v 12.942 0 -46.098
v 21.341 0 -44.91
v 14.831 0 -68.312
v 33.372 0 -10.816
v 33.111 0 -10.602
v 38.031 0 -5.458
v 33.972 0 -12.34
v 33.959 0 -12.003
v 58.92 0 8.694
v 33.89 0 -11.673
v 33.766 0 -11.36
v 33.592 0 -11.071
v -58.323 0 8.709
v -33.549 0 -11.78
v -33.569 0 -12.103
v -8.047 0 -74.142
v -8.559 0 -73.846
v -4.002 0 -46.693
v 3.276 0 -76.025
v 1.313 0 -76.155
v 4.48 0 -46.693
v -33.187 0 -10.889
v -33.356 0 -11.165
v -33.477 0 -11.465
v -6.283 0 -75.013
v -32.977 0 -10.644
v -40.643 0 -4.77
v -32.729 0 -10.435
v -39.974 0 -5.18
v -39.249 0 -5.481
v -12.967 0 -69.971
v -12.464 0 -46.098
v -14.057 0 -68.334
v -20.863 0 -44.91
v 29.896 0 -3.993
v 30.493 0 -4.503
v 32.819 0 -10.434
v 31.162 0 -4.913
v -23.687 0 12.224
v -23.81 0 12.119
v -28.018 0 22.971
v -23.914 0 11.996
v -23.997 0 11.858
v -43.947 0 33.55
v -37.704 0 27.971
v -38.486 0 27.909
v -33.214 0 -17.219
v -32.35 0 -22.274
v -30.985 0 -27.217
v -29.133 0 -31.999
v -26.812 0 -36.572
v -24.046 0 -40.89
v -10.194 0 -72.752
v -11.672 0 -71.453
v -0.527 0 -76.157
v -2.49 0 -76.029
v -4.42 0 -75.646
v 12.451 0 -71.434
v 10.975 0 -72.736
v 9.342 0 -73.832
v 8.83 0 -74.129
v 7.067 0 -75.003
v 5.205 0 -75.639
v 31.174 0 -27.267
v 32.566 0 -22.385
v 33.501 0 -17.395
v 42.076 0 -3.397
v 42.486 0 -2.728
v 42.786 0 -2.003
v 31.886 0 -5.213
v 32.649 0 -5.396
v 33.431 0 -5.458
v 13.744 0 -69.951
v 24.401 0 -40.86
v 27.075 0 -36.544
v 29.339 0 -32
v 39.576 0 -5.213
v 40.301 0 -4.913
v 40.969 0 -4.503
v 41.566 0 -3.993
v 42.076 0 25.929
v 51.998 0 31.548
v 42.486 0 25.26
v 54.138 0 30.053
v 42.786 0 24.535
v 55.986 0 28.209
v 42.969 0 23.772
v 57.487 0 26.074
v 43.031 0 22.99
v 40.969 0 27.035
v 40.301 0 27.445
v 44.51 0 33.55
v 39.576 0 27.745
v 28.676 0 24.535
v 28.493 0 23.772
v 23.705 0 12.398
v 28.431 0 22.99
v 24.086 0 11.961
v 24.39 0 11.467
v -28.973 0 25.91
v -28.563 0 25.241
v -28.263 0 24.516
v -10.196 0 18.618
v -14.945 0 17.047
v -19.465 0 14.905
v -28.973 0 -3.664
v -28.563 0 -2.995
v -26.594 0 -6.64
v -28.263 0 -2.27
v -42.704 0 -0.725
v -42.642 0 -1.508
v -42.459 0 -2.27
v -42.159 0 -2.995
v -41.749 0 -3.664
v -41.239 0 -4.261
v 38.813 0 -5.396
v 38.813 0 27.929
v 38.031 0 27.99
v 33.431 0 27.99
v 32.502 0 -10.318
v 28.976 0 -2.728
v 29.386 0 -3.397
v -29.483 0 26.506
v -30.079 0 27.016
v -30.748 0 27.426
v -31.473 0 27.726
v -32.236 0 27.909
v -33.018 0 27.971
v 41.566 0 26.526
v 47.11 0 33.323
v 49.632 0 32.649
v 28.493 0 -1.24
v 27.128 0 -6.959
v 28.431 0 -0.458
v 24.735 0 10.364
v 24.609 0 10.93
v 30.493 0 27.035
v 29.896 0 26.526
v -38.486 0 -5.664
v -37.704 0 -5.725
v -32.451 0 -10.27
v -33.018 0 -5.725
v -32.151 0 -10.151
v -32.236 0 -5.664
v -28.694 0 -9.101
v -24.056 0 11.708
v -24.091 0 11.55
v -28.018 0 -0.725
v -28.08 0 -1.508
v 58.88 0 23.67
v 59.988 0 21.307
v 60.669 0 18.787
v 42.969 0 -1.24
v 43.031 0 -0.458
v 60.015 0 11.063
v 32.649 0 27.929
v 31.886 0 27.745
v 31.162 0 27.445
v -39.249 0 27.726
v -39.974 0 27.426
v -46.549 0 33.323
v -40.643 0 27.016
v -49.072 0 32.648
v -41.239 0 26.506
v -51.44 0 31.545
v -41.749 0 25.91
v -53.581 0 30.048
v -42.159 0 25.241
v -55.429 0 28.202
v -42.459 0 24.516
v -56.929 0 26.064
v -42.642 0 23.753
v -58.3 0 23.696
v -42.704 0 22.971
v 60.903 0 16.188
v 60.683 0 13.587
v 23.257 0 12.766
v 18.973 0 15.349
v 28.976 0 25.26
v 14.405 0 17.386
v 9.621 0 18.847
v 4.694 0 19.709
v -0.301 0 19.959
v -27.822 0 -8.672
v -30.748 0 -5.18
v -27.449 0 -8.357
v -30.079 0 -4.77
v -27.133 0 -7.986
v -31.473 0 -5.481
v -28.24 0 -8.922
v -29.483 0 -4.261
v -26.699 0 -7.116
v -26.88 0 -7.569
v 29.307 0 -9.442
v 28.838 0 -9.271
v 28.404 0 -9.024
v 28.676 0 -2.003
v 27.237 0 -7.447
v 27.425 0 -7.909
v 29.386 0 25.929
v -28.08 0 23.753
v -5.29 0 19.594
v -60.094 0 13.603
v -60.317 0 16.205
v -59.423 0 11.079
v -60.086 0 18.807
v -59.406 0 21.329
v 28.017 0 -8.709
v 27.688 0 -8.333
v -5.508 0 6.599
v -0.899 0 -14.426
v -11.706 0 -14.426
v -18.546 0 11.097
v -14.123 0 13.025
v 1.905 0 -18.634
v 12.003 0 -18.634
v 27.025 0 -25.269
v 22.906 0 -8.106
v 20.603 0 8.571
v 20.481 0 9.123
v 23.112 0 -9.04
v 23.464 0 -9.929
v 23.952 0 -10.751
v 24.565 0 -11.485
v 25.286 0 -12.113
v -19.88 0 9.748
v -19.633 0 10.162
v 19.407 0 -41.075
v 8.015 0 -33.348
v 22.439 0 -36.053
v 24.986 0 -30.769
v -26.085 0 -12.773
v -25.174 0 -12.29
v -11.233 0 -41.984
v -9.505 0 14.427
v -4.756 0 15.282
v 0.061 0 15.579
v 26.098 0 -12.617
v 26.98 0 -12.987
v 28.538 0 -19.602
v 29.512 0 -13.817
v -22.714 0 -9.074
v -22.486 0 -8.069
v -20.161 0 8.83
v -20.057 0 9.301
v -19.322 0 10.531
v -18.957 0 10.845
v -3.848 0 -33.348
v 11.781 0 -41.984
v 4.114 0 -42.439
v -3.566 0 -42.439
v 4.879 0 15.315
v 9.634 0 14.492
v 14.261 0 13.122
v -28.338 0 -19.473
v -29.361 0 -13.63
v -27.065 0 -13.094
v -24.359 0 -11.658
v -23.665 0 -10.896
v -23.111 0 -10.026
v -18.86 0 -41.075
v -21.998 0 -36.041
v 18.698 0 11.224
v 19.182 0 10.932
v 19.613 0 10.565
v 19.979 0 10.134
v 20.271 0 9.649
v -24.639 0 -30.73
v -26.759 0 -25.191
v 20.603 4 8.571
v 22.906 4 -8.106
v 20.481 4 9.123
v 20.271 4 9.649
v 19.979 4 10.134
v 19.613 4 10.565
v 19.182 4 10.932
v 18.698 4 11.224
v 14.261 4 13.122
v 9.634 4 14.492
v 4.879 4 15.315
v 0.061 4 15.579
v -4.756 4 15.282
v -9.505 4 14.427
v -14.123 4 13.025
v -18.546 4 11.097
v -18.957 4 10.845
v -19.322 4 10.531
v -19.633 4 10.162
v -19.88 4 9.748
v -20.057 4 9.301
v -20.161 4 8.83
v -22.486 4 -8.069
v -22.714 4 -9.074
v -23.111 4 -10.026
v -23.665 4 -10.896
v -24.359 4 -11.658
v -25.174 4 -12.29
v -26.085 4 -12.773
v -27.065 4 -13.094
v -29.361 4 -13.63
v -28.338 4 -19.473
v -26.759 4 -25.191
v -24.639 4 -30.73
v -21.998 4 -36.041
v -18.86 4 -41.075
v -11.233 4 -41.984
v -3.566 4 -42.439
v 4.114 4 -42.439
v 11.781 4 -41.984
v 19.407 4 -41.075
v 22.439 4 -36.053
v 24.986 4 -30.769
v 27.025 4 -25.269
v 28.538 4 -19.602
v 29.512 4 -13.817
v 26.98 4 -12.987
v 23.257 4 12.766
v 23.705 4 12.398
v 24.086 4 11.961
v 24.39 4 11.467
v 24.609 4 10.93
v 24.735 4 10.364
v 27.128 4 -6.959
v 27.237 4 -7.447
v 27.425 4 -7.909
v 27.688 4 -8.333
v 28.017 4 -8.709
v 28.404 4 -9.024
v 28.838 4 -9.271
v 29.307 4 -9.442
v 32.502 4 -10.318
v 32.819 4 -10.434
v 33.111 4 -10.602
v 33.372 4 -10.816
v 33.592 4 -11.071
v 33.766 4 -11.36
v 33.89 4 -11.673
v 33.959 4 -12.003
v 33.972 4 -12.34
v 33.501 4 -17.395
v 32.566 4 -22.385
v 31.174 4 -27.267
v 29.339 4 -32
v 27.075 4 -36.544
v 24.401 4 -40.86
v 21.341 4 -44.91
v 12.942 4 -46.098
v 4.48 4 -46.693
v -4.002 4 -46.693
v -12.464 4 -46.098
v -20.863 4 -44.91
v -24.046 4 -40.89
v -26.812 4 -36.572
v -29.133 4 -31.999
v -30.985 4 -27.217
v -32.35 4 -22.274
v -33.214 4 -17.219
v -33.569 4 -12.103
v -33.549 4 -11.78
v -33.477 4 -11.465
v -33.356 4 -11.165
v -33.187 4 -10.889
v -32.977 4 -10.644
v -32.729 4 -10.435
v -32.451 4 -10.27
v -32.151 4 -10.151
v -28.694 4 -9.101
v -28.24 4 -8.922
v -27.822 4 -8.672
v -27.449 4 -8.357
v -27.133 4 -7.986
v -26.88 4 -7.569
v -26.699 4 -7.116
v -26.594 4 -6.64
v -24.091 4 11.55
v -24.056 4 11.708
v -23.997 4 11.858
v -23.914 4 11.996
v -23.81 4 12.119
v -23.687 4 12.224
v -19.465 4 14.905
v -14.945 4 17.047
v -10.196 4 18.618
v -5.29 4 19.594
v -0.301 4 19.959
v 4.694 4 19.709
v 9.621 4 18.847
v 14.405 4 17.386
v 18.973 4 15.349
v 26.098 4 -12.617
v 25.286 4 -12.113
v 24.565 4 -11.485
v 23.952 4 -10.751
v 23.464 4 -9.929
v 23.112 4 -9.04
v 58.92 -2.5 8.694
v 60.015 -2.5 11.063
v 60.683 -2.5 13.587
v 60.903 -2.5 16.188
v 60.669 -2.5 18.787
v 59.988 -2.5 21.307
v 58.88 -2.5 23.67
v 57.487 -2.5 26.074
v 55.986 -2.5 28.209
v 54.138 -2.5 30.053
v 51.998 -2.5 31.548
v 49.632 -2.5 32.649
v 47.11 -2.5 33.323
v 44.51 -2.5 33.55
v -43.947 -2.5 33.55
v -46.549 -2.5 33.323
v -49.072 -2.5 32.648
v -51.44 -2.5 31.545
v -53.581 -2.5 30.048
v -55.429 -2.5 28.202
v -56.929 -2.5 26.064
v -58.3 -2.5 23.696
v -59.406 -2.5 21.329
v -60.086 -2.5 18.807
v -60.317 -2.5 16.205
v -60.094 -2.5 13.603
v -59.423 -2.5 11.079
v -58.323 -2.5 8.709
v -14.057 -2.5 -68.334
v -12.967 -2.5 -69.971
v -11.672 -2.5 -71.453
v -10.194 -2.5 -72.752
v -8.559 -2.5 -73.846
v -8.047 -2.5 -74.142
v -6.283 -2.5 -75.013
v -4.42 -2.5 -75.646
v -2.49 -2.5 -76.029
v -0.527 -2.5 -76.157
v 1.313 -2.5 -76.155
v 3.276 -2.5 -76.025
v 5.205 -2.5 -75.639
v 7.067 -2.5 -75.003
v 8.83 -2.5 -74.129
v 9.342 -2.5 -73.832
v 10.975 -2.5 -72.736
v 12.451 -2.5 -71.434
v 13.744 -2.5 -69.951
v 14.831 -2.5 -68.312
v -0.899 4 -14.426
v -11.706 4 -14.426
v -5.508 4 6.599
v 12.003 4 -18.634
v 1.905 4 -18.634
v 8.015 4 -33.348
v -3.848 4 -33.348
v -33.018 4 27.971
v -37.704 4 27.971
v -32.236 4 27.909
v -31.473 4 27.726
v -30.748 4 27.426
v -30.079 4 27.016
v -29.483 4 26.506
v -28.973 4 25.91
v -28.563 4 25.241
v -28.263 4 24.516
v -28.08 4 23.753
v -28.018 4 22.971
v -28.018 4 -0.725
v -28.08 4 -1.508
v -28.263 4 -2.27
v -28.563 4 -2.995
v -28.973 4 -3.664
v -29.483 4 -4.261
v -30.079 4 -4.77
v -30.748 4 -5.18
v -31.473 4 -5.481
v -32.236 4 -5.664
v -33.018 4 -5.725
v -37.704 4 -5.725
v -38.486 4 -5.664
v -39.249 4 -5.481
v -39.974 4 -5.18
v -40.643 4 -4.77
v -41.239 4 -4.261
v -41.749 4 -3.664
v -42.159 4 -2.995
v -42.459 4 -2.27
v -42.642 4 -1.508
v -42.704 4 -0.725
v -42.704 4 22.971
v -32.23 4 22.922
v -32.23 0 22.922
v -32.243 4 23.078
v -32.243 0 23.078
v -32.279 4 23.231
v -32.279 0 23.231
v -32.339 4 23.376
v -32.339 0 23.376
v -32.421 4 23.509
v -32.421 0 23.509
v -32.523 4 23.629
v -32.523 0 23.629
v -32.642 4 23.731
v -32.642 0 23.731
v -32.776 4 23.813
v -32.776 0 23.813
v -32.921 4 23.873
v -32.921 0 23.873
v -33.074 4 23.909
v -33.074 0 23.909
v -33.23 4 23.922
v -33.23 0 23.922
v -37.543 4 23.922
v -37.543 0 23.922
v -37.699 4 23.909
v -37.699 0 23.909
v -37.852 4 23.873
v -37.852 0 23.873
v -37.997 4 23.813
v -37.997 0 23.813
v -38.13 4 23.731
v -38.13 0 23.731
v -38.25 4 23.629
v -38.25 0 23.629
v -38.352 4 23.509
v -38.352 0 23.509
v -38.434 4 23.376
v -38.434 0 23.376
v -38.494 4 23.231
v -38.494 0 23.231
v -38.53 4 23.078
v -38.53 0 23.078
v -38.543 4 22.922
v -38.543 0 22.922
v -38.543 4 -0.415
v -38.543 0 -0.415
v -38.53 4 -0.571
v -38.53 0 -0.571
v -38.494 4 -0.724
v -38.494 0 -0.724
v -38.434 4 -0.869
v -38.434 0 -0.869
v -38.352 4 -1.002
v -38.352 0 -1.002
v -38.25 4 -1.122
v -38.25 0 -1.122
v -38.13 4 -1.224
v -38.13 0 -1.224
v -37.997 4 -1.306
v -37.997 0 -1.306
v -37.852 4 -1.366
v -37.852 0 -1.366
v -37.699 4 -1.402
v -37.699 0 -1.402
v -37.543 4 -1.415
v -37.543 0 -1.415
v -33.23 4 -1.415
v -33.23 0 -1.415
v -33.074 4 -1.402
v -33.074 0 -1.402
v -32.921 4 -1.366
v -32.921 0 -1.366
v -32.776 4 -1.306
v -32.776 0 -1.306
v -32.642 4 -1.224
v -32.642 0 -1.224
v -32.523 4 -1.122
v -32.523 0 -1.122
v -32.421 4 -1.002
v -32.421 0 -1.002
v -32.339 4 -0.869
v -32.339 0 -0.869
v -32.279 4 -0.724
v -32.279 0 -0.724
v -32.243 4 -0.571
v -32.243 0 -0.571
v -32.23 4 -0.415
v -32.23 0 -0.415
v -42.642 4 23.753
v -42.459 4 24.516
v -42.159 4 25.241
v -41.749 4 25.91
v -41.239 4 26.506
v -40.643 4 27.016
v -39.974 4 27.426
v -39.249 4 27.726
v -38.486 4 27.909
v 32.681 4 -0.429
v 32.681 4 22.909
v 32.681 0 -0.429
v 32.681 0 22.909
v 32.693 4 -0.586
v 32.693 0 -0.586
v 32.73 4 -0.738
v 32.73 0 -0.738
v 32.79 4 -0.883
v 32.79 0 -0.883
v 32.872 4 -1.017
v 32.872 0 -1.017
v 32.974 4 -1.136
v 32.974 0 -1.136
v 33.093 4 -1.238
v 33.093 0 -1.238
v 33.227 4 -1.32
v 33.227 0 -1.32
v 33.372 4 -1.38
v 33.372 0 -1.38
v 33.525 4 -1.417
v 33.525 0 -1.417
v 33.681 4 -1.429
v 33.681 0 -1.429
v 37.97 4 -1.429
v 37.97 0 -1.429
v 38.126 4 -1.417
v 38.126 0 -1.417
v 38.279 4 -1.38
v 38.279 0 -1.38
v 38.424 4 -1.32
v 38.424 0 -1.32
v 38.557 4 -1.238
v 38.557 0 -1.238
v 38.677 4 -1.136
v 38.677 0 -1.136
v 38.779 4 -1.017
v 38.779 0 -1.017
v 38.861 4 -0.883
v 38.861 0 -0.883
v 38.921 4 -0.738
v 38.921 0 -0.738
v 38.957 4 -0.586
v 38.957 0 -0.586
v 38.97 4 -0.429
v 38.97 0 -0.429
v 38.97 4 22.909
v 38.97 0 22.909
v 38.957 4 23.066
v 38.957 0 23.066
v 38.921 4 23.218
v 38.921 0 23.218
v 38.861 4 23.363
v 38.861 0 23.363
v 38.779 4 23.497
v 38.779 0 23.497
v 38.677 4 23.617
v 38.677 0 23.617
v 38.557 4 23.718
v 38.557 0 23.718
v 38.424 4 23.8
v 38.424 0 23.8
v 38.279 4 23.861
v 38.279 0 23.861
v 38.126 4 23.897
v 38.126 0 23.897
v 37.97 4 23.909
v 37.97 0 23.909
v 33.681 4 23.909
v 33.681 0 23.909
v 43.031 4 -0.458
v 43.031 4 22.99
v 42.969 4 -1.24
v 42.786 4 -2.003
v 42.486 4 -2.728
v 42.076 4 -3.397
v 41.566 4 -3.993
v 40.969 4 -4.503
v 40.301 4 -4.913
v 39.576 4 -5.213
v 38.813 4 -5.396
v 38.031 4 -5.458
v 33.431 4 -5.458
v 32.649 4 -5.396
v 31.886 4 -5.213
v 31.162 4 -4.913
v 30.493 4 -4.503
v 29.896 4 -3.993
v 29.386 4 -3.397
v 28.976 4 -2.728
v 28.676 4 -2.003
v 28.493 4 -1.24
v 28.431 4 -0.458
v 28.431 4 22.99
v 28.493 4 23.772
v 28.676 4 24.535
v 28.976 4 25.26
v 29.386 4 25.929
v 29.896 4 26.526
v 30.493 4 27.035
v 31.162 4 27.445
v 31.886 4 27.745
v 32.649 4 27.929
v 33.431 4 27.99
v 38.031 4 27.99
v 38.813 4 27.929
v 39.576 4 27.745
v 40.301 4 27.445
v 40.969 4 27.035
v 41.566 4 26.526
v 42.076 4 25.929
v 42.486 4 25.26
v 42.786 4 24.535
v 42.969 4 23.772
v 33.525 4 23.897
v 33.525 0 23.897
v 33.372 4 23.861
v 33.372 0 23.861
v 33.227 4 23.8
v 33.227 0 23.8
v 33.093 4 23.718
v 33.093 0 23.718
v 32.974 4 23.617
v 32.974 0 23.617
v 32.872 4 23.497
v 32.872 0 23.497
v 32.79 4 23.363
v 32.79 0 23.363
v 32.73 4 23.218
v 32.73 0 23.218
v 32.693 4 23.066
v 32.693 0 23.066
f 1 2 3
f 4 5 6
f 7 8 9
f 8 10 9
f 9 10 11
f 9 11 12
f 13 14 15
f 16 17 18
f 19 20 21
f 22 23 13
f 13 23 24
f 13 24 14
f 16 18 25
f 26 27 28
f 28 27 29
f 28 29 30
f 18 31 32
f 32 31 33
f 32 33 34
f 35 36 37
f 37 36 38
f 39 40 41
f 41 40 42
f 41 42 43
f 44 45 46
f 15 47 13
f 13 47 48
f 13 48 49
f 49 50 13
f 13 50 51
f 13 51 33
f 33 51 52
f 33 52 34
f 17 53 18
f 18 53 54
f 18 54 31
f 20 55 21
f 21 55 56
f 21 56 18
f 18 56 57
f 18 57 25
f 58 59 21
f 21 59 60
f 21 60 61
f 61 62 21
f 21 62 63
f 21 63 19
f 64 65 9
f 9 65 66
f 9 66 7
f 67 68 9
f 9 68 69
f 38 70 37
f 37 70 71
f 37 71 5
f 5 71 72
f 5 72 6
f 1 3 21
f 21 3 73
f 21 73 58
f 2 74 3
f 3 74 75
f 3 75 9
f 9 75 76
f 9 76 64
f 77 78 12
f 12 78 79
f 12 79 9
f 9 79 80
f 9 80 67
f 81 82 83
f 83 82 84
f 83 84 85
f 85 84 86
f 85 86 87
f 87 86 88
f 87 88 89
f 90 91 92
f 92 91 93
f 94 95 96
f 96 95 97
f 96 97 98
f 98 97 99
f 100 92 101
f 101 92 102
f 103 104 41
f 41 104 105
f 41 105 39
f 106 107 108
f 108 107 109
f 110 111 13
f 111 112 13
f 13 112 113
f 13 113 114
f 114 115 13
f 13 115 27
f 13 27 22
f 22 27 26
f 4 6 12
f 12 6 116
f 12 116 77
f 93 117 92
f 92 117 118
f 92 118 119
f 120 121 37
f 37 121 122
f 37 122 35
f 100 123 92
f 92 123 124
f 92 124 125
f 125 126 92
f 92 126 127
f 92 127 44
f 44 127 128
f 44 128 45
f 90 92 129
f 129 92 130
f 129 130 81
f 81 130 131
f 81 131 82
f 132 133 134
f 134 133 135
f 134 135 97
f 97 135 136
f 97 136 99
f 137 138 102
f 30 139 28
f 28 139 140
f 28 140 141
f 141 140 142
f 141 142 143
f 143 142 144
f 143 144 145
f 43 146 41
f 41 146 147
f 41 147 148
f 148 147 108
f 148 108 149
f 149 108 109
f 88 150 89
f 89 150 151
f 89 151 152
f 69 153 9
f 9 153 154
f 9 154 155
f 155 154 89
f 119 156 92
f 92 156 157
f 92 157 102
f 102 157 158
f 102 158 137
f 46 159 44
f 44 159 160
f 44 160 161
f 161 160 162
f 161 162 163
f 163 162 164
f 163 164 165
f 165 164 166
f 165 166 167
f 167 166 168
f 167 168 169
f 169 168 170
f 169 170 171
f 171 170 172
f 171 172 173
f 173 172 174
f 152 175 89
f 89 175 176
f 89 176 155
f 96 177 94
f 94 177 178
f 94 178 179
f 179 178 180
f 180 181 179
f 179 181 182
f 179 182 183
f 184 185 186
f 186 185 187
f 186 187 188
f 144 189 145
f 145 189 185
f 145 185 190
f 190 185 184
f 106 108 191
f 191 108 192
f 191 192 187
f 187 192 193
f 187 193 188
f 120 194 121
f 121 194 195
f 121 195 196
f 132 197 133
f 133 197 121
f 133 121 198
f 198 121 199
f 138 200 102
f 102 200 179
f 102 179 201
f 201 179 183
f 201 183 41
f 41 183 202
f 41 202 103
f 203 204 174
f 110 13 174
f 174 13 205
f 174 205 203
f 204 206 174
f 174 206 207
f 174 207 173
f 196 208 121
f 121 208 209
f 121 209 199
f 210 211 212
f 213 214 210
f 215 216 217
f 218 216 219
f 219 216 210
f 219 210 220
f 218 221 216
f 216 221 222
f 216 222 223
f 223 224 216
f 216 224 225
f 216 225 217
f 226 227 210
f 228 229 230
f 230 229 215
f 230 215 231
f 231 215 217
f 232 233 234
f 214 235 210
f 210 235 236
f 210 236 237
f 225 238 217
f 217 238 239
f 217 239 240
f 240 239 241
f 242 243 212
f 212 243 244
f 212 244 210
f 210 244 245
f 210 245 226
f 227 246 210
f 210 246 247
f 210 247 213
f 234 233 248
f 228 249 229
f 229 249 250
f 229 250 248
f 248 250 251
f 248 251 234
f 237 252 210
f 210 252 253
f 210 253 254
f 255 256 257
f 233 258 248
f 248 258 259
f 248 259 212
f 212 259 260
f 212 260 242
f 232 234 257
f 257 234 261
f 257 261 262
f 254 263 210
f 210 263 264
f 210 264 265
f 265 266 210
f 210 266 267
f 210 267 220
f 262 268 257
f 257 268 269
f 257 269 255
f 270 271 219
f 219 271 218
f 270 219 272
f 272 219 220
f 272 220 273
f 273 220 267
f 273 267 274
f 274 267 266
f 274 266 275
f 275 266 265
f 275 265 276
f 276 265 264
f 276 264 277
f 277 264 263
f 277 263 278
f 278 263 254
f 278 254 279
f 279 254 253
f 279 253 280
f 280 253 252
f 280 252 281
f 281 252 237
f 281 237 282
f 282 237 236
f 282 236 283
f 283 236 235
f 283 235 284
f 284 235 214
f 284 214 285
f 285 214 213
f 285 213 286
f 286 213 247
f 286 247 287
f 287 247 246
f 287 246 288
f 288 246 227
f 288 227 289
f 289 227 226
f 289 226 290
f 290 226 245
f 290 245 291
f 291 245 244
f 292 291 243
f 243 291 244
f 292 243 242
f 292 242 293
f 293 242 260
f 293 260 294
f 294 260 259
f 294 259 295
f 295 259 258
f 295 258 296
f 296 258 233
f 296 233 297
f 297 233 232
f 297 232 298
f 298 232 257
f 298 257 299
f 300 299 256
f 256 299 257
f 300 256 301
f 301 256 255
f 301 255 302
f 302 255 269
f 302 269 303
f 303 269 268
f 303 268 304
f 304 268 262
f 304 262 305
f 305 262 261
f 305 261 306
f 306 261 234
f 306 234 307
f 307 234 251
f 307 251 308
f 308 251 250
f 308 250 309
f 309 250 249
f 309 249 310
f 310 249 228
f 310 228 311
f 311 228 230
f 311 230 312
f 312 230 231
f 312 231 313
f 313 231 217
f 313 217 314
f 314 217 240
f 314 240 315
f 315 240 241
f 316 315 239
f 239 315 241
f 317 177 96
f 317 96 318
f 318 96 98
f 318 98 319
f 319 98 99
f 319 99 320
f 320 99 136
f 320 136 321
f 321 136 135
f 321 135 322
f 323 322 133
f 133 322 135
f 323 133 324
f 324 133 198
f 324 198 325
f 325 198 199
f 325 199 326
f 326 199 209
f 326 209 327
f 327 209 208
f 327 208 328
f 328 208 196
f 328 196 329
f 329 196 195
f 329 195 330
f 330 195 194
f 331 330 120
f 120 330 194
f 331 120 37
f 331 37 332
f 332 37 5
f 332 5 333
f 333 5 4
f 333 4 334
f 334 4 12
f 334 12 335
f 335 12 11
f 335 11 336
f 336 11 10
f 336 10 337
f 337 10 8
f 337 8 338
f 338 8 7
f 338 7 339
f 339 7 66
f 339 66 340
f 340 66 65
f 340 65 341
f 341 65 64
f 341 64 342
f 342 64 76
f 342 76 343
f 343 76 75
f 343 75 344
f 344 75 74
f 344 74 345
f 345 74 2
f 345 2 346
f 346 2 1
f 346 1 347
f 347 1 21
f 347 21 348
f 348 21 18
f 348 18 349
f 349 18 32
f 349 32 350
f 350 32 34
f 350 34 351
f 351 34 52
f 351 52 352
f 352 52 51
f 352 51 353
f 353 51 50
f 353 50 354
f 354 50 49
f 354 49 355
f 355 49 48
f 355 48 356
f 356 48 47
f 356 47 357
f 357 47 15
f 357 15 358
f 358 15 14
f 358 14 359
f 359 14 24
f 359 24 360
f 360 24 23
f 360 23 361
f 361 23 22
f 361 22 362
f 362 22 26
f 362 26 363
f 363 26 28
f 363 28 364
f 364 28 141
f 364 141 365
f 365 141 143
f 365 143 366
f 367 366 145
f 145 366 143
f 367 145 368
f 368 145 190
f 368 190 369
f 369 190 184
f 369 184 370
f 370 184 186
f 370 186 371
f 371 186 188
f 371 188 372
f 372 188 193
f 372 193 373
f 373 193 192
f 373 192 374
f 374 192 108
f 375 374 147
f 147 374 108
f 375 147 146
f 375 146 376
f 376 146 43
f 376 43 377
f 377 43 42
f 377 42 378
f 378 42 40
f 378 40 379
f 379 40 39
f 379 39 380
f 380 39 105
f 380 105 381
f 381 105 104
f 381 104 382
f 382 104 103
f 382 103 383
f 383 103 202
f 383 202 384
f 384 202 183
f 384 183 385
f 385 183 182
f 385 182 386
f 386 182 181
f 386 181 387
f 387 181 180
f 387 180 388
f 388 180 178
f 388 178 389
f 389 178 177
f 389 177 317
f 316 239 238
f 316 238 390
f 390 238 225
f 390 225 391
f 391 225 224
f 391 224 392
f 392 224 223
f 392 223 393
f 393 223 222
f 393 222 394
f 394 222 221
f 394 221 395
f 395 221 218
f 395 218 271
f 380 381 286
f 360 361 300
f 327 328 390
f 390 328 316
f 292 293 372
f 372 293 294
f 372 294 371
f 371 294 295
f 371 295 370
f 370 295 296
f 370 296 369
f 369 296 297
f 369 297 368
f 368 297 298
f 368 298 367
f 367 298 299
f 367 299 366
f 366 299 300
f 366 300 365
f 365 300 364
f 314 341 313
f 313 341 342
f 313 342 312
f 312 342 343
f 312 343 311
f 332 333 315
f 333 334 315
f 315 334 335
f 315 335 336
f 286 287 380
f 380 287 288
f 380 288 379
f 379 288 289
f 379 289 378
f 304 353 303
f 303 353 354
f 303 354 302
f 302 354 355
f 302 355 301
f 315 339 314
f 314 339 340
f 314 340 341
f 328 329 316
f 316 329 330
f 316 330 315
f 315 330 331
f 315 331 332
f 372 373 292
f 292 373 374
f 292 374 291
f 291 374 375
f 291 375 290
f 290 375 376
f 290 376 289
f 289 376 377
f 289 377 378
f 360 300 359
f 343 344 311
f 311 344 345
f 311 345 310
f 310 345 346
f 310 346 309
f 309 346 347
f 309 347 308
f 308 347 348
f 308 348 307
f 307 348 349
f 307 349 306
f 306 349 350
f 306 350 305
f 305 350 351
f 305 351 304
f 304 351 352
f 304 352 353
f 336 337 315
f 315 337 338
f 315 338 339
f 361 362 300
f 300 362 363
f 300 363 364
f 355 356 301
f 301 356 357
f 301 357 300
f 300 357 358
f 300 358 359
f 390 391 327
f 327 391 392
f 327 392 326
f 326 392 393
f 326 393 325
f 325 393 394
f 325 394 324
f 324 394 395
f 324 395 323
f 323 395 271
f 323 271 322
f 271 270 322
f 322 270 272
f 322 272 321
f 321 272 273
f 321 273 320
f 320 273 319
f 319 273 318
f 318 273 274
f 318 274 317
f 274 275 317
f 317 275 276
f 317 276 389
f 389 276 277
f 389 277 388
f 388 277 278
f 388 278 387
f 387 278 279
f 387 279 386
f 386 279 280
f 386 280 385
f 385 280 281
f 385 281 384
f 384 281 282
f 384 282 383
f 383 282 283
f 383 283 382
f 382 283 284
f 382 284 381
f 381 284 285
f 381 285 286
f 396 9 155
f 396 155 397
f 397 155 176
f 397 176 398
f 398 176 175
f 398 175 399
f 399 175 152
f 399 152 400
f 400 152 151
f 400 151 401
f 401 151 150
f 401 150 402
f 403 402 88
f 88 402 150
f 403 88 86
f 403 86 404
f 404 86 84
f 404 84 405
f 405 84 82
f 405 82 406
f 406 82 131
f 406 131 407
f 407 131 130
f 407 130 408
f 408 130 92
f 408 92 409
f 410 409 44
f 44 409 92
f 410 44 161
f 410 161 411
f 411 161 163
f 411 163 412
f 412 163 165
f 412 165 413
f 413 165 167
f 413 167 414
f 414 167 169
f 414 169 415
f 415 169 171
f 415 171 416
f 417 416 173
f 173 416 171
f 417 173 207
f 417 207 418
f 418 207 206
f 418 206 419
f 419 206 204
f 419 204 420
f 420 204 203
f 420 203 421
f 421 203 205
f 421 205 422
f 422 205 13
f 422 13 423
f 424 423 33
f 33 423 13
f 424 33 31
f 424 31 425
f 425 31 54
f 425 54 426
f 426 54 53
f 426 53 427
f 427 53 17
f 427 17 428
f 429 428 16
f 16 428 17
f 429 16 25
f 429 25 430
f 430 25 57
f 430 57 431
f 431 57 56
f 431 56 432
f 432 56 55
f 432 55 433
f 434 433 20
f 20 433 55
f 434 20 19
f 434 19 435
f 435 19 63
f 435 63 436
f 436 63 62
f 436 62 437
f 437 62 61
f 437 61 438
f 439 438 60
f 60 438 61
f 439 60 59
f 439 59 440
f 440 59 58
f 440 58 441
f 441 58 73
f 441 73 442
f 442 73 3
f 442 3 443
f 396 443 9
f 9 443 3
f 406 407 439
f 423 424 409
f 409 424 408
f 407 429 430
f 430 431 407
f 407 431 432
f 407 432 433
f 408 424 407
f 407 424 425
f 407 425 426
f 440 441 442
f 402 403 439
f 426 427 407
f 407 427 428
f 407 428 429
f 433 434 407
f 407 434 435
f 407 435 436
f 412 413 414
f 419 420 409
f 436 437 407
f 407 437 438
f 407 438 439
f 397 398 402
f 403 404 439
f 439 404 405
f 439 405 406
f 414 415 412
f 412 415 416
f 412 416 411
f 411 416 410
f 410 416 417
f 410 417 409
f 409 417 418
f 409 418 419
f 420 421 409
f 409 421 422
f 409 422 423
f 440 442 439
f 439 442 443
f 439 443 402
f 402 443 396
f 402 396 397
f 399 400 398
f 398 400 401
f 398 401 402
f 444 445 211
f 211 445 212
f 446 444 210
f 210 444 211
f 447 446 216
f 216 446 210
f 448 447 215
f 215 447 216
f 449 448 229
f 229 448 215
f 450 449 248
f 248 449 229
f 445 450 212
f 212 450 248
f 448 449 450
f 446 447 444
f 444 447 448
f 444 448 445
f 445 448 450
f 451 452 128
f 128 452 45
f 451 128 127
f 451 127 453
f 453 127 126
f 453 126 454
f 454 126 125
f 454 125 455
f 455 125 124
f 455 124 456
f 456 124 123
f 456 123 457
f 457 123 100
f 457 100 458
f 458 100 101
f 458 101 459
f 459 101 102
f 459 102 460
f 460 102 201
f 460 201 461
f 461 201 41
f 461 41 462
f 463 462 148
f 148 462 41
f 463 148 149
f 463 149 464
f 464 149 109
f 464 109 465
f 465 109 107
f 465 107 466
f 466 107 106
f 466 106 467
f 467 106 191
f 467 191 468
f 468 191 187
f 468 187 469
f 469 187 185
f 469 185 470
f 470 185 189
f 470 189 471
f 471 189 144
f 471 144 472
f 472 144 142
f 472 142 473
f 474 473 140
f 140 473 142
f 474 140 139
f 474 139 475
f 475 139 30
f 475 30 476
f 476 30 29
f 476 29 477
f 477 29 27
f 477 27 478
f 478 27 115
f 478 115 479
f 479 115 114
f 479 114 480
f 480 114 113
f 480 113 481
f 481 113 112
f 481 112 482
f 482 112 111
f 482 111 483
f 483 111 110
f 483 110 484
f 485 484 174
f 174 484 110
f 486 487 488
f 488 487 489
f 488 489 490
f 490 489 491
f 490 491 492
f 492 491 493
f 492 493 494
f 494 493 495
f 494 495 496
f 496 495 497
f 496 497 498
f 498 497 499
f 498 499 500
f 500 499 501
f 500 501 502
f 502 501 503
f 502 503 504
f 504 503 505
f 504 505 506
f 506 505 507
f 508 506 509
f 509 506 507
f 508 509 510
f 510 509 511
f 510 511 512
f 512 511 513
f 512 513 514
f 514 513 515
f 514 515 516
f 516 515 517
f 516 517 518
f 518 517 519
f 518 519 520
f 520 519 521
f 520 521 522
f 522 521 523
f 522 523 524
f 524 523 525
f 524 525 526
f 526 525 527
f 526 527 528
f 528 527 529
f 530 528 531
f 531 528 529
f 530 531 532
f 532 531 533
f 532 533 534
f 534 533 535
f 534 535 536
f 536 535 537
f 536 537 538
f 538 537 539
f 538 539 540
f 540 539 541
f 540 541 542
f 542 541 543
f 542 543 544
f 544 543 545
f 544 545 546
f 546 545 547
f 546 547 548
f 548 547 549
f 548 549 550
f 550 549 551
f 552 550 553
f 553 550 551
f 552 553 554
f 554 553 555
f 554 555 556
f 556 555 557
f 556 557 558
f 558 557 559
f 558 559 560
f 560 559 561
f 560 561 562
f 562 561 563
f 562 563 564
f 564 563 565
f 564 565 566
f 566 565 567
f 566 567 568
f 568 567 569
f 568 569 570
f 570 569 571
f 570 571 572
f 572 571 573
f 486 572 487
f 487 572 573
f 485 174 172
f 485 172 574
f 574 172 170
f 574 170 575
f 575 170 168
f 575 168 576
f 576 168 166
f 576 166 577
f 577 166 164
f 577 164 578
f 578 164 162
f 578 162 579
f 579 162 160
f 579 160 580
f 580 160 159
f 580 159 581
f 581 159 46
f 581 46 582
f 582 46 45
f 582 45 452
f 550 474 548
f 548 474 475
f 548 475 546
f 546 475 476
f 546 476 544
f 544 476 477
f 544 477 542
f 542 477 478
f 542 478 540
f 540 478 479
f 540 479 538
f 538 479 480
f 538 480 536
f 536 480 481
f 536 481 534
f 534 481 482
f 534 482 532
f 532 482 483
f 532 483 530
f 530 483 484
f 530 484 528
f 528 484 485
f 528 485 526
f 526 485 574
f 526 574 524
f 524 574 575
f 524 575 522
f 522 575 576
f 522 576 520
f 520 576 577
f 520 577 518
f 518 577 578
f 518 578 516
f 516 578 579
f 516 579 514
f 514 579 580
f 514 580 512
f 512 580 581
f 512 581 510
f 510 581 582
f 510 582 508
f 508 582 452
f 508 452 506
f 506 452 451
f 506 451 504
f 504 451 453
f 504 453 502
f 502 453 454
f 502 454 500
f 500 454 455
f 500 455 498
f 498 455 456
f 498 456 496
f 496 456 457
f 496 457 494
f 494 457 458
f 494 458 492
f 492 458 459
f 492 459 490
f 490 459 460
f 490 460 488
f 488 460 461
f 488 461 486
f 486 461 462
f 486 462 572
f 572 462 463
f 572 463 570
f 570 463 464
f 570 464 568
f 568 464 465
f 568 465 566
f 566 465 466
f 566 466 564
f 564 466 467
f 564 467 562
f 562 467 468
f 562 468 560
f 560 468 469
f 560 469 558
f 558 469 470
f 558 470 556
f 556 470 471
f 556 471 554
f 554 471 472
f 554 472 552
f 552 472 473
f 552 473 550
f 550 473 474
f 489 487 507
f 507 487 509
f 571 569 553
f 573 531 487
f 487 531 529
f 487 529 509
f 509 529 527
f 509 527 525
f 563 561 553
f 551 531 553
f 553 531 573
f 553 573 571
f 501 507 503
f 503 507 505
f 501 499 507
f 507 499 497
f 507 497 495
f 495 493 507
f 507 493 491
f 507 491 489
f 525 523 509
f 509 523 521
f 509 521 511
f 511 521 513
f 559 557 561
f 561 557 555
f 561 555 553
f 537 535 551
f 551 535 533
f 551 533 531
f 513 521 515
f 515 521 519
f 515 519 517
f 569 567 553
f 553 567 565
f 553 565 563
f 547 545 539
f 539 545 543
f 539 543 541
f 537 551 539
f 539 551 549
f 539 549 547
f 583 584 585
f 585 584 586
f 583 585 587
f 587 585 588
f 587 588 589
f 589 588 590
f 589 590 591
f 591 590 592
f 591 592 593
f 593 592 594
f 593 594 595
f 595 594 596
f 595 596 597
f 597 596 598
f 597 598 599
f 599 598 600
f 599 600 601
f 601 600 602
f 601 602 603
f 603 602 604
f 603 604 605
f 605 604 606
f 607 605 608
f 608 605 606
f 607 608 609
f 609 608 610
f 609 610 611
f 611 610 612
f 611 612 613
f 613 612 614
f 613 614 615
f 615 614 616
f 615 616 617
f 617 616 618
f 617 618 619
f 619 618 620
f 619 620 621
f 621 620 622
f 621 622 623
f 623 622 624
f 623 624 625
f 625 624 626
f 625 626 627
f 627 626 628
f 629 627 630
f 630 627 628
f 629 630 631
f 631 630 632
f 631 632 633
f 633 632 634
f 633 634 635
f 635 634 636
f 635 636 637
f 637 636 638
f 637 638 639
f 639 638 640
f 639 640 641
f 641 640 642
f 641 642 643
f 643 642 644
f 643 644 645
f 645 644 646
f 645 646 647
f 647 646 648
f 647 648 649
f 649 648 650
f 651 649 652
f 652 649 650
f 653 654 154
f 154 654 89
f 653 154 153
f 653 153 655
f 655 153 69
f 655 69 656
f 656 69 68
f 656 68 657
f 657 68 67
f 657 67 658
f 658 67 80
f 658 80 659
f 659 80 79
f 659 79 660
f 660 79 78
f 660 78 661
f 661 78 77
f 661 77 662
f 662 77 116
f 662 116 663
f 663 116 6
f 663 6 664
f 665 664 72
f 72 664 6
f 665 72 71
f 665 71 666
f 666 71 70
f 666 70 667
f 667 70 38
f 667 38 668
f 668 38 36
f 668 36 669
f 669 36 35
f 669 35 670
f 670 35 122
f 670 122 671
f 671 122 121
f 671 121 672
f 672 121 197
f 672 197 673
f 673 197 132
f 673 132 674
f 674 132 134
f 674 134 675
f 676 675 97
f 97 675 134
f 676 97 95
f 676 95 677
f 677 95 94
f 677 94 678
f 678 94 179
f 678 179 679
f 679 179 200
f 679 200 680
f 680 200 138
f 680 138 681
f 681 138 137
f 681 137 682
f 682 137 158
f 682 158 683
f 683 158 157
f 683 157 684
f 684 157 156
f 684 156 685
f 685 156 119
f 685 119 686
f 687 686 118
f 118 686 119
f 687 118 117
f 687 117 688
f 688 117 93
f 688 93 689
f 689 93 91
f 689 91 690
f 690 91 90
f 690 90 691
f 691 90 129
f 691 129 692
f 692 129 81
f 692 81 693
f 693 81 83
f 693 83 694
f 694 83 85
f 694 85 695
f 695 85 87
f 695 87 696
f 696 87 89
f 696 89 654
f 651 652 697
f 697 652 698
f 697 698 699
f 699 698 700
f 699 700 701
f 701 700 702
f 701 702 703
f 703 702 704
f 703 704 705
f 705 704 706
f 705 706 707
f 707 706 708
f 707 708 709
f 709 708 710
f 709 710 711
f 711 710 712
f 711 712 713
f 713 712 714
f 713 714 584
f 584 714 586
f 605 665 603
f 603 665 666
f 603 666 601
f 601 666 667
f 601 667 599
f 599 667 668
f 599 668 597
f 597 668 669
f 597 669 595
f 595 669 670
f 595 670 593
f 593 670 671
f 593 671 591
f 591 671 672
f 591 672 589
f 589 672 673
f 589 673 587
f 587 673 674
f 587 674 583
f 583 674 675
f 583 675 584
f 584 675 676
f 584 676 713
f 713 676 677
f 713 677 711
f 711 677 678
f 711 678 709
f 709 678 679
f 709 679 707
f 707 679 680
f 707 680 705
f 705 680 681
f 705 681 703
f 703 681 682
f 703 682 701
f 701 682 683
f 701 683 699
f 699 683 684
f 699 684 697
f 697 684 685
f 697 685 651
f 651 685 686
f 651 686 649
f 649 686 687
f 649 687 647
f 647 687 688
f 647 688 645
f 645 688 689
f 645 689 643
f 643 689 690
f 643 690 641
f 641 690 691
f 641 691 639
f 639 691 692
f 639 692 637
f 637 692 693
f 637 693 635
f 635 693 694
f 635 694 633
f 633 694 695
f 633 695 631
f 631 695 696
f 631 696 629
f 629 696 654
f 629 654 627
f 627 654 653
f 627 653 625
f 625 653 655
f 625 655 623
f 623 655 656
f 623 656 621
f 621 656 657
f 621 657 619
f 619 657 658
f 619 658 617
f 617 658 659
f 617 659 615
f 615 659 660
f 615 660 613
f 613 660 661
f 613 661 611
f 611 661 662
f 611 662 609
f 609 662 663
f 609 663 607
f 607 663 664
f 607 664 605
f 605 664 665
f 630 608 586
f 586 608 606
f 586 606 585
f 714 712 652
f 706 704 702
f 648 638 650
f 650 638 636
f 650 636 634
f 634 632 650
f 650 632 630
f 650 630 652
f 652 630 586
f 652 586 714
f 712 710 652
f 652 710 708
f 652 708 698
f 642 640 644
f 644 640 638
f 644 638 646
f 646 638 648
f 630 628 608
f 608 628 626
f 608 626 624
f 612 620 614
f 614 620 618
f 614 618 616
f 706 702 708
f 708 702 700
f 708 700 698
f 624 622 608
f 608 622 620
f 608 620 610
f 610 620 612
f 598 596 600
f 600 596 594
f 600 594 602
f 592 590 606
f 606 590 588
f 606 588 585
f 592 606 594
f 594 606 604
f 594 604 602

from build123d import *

# Parameters (mm, degrees)
SALIENTE_EXTRUIR1_DEPTH   = 4
SALIENTE_EXTRUIR1_2_DEPTH = 4
SALIENTE_EXTRUIR1_3_DEPTH = 4
SALIENTE_EXTRUIR1_4_DEPTH = 4
SALIENTE_EXTRUIR4_DEPTH   = 2.5


with BuildPart() as part:
    # Croquis1 → Saliente-Extruir1 (new body)
    with BuildSketch(Plane(origin=(0, 0, 0), x_dir=(1, 0, 0), z_dir=(0, 1, 0))):
        with BuildLine():
            ThreePointArc((24.735317162, -10.364213377), (24.248592978, -11.720458271), (23.256713943, -12.765674337))
            ThreePointArc((23.256713943, -12.765674337), (-0.301443486, -19.95898411), (-23.6872801, -12.223796151))
            ThreePointArc((-23.6872801, -12.223796151), (-23.957956222, -11.928413602), (-24.090963646, -11.550491071))
            Line((-24.090963646, -11.550491071), (-26.593504351, 6.639690423))
            ThreePointArc((-26.593504351, 6.639690423), (-27.283319128, 8.17801652), (-28.693873074, 9.101395733))
            Line((-28.693873074, 9.101395733), (-32.150547194, 10.150996156))
            ThreePointArc((-32.150547194, 10.150996156), (-33.187437723, 10.889076251), (-33.569084317, 12.103263251))
            ThreePointArc((-33.569084317, 12.103263251), (-30.118383627, 29.630783624), (-20.863266874, 44.910316325))
            ThreePointArc((-20.863266874, 44.910316325), (0.239054347, 46.767665402), (21.341375569, 44.910316325))
            ThreePointArc((21.341375569, 44.910316325), (30.311360731, 29.654768569), (33.971770868, 12.340214899))
            ThreePointArc((33.971770868, 12.340214899), (33.591964571, 11.071163494), (32.502360075, 10.317833331))
            Line((32.502360075, 10.317833331), (29.306873174, 9.442473887))
            ThreePointArc((29.306873174, 9.442473887), (27.844705893, 8.527958517), (27.127684399, 6.959471444))
            Line((27.127684399, 6.959471444), (24.735317162, -10.364213377))
        make_face()
        with BuildLine():
            Line((20.603314318, -8.570902391), (22.906419095, 8.106412307))
            ThreePointArc((22.906419095, 8.106412307), (24.243847943, 11.130514009), (26.980259101, 12.986843989))
            Line((26.980259101, 12.986843989), (29.51197218, 13.81713433))
            ThreePointArc((29.51197218, 13.81713433), (26.070313597, 28.043115781), (19.407293404, 41.074912432))
            ThreePointArc((19.407293404, 41.074912432), (0.273848763, 42.495848638), (-18.859595878, 41.074912432))
            ThreePointArc((-18.859595878, 41.074912432), (-25.76543723, 27.985894011), (-29.361445326, 13.630345475))
            Line((-29.361445326, 13.630345475), (-27.064825612, 13.093562644))
            ThreePointArc((-27.064825612, 13.093562644), (-23.995371379, 11.292144095), (-22.48638433, 8.068851342))
            Line((-22.48638433, 8.068851342), (-20.161283591, -8.830099253))
            ThreePointArc((-20.161283591, -8.830099253), (-19.632507369, -10.162063132), (-18.546205688, -11.096772031))
            ThreePointArc((-18.546205688, -11.096772031), (0.060689408, -15.579037847), (18.697865881, -11.224396063))
            ThreePointArc((18.697865881, -11.224396063), (19.979160972, -10.133592829), (20.603314318, -8.570902391))
        make_face(mode=Mode.SUBTRACT)
    extrude(amount=SALIENTE_EXTRUIR1_DEPTH)



with BuildPart() as body_2:
    # Croquis1 → Saliente-Extruir1 2 (new body)
    with BuildSketch(Plane(origin=(0, 0, 0), x_dir=(1, 0, 0), z_dir=(0, 1, 0))):
        Polygon((-11.705967947, 14.426136366), (-0.899048263, 14.426136366), (-5.508070268, -6.59896119), (12.002660496, 18.633842358), (1.904898556, 18.633842358), (8.015220238, 33.347588292), (-3.8482709, 33.347588292), align=None)
    extrude(amount=SALIENTE_EXTRUIR1_2_DEPTH)


with BuildPart() as body_3:
    # Croquis1 → Saliente-Extruir1 3 (new body)
    with BuildSketch(Plane(origin=(0, 0, 0), x_dir=(1, 0, 0), z_dir=(0, 1, 0))):
        with BuildLine():
            Line((-33.018215507, -27.970809887), (-37.703834023, -27.970809887))
            ThreePointArc((-37.703834023, -27.970809887), (-41.239367929, -26.506343793), (-42.703834023, -22.970809887))
            Line((-42.703834023, -22.970809887), (-42.703834023, 0.725352507))
            ThreePointArc((-42.703834023, 0.725352507), (-41.239367929, 4.260886413), (-37.703834023, 5.725352507))
            Line((-37.703834023, 5.725352507), (-33.018215507, 5.725352507))
            ThreePointArc((-33.018215507, 5.725352507), (-29.482681601, 4.260886413), (-28.018215507, 0.725352507))
            Line((-28.018215507, 0.725352507), (-28.018215507, -22.970809887))
            ThreePointArc((-28.018215507, -22.970809887), (-29.482681601, -26.506343793), (-33.018215507, -27.970809887))
        make_face()
        with BuildLine():
            ThreePointArc((-33.230214616, -23.921699906), (-32.523107835, -23.628806688), (-32.230214616, -22.921699906))
            Line((-32.230214616, -22.921699906), (-32.230214616, 0.414545051))
            ThreePointArc((-32.230214616, 0.414545051), (-32.523107835, 1.121651832), (-33.230214616, 1.414545051))
            Line((-33.230214616, 1.414545051), (-37.542643739, 1.414545051))
            ThreePointArc((-37.542643739, 1.414545051), (-38.24975052, 1.121651832), (-38.542643739, 0.414545051))
            Line((-38.542643739, 0.414545051), (-38.542643739, -22.921699906))
            ThreePointArc((-38.542643739, -22.921699906), (-38.24975052, -23.628806688), (-37.542643739, -23.921699906))
            Line((-37.542643739, -23.921699906), (-33.230214616, -23.921699906))
        make_face(mode=Mode.SUBTRACT)
    extrude(amount=SALIENTE_EXTRUIR1_3_DEPTH)


with BuildPart() as body_4:
    # Croquis1 → Saliente-Extruir1 4 (new body)
    with BuildSketch(Plane(origin=(0, 0, 0), x_dir=(1, 0, 0), z_dir=(0, 1, 0))):
        with BuildLine():
            Line((43.03056828, -22.990060864), (43.03056828, 0.457791938))
            ThreePointArc((43.03056828, 0.457791938), (41.566102186, 3.993325844), (38.03056828, 5.457791938))
            Line((38.03056828, 5.457791938), (33.431492806, 5.457791938))
            ThreePointArc((33.431492806, 5.457791938), (29.8959589, 3.993325844), (28.431492806, 0.457791938))
            Line((28.431492806, 0.457791938), (28.431492806, -22.990060864))
            ThreePointArc((28.431492806, -22.990060864), (29.8959589, -26.52559477), (33.431492806, -27.990060864))
            Line((33.431492806, -27.990060864), (38.03056828, -27.990060864))
            ThreePointArc((38.03056828, -27.990060864), (41.566102186, -26.52559477), (43.03056828, -22.990060864))
        make_face()
        with BuildLine():
            Line((32.681003043, -22.909445085), (32.681003043, 0.429273953))
            ThreePointArc((32.681003043, 0.429273953), (32.973896262, 1.136380734), (33.681003043, 1.429273953))
            Line((33.681003043, 1.429273953), (37.969534376, 1.429273953))
            ThreePointArc((37.969534376, 1.429273953), (38.676641157, 1.136380734), (38.969534376, 0.429273953))
            Line((38.969534376, 0.429273953), (38.969534376, -22.909445085))
            ThreePointArc((38.969534376, -22.909445085), (38.676641157, -23.616551866), (37.969534376, -23.909445085))
            Line((37.969534376, -23.909445085), (33.681003043, -23.909445085))
            ThreePointArc((33.681003043, -23.909445085), (32.973896262, -23.616551866), (32.681003043, -22.909445085))
        make_face(mode=Mode.SUBTRACT)
    extrude(amount=SALIENTE_EXTRUIR1_4_DEPTH)


with BuildPart() as part_1:
    add(part.part)

    add(body_2.part)  # Saliente-Extruir4 merges body 2

    add(body_3.part)  # Saliente-Extruir4 merges body 3

    add(body_4.part)  # Saliente-Extruir4 merges body 4
    # Croquis4 → Saliente-Extruir4 (add)
    with BuildSketch(Plane.XZ):
        with BuildLine():
            Line((-43.946678981, 33.550376808), (44.509741085, 33.550376808))
            ThreePointArc((44.509741085, 33.550376808), (51.998021732, 31.547516992), (57.486572192, 26.073797202))
            Line((57.486572192, 26.073797202), (58.879911857, 23.670484273))
            ThreePointArc((58.879911857, 23.670484273), (60.903025841, 16.187650298), (58.920434856, 8.693977802))
            Line((58.920434856, 8.693977802), (14.830934948, -68.31152391))
            ThreePointArc((14.830934948, -68.31152391), (12.450857587, -71.434275551), (9.341944939, -73.83240153))
            Line((9.341944939, -73.83240153), (8.830099524, -74.129408577))
            ThreePointArc((8.830099524, -74.129408577), (5.205365249, -75.63859627), (1.313165605, -76.155440525))
            Line((1.313165605, -76.155440525), (-0.526820951, -76.156842617))
            ThreePointArc((-0.526820951, -76.156842617), (-4.419803759, -75.645930765), (-8.046833861, -74.142269004))
            Line((-8.046833861, -74.142269004), (-8.559131327, -73.846042366))
            ThreePointArc((-8.559131327, -73.846042366), (-11.671695164, -71.452657228), (-14.056528907, -68.333536506))
            Line((-14.056528907, -68.333536506), (-58.32332823, 8.709094133))
            ThreePointArc((-58.32332823, 8.709094133), (-60.317329602, 16.205451495), (-58.299908193, 23.695540015))
            Line((-58.299908193, 23.695540015), (-56.929239256, 26.063906519))
            ThreePointArc((-56.929239256, 26.063906519), (-51.439911073, 31.544662969), (-43.946678981, 33.550376808))
        make_face()
    extrude(amount=SALIENTE_EXTRUIR4_DEPTH)


solid = part_1.part
